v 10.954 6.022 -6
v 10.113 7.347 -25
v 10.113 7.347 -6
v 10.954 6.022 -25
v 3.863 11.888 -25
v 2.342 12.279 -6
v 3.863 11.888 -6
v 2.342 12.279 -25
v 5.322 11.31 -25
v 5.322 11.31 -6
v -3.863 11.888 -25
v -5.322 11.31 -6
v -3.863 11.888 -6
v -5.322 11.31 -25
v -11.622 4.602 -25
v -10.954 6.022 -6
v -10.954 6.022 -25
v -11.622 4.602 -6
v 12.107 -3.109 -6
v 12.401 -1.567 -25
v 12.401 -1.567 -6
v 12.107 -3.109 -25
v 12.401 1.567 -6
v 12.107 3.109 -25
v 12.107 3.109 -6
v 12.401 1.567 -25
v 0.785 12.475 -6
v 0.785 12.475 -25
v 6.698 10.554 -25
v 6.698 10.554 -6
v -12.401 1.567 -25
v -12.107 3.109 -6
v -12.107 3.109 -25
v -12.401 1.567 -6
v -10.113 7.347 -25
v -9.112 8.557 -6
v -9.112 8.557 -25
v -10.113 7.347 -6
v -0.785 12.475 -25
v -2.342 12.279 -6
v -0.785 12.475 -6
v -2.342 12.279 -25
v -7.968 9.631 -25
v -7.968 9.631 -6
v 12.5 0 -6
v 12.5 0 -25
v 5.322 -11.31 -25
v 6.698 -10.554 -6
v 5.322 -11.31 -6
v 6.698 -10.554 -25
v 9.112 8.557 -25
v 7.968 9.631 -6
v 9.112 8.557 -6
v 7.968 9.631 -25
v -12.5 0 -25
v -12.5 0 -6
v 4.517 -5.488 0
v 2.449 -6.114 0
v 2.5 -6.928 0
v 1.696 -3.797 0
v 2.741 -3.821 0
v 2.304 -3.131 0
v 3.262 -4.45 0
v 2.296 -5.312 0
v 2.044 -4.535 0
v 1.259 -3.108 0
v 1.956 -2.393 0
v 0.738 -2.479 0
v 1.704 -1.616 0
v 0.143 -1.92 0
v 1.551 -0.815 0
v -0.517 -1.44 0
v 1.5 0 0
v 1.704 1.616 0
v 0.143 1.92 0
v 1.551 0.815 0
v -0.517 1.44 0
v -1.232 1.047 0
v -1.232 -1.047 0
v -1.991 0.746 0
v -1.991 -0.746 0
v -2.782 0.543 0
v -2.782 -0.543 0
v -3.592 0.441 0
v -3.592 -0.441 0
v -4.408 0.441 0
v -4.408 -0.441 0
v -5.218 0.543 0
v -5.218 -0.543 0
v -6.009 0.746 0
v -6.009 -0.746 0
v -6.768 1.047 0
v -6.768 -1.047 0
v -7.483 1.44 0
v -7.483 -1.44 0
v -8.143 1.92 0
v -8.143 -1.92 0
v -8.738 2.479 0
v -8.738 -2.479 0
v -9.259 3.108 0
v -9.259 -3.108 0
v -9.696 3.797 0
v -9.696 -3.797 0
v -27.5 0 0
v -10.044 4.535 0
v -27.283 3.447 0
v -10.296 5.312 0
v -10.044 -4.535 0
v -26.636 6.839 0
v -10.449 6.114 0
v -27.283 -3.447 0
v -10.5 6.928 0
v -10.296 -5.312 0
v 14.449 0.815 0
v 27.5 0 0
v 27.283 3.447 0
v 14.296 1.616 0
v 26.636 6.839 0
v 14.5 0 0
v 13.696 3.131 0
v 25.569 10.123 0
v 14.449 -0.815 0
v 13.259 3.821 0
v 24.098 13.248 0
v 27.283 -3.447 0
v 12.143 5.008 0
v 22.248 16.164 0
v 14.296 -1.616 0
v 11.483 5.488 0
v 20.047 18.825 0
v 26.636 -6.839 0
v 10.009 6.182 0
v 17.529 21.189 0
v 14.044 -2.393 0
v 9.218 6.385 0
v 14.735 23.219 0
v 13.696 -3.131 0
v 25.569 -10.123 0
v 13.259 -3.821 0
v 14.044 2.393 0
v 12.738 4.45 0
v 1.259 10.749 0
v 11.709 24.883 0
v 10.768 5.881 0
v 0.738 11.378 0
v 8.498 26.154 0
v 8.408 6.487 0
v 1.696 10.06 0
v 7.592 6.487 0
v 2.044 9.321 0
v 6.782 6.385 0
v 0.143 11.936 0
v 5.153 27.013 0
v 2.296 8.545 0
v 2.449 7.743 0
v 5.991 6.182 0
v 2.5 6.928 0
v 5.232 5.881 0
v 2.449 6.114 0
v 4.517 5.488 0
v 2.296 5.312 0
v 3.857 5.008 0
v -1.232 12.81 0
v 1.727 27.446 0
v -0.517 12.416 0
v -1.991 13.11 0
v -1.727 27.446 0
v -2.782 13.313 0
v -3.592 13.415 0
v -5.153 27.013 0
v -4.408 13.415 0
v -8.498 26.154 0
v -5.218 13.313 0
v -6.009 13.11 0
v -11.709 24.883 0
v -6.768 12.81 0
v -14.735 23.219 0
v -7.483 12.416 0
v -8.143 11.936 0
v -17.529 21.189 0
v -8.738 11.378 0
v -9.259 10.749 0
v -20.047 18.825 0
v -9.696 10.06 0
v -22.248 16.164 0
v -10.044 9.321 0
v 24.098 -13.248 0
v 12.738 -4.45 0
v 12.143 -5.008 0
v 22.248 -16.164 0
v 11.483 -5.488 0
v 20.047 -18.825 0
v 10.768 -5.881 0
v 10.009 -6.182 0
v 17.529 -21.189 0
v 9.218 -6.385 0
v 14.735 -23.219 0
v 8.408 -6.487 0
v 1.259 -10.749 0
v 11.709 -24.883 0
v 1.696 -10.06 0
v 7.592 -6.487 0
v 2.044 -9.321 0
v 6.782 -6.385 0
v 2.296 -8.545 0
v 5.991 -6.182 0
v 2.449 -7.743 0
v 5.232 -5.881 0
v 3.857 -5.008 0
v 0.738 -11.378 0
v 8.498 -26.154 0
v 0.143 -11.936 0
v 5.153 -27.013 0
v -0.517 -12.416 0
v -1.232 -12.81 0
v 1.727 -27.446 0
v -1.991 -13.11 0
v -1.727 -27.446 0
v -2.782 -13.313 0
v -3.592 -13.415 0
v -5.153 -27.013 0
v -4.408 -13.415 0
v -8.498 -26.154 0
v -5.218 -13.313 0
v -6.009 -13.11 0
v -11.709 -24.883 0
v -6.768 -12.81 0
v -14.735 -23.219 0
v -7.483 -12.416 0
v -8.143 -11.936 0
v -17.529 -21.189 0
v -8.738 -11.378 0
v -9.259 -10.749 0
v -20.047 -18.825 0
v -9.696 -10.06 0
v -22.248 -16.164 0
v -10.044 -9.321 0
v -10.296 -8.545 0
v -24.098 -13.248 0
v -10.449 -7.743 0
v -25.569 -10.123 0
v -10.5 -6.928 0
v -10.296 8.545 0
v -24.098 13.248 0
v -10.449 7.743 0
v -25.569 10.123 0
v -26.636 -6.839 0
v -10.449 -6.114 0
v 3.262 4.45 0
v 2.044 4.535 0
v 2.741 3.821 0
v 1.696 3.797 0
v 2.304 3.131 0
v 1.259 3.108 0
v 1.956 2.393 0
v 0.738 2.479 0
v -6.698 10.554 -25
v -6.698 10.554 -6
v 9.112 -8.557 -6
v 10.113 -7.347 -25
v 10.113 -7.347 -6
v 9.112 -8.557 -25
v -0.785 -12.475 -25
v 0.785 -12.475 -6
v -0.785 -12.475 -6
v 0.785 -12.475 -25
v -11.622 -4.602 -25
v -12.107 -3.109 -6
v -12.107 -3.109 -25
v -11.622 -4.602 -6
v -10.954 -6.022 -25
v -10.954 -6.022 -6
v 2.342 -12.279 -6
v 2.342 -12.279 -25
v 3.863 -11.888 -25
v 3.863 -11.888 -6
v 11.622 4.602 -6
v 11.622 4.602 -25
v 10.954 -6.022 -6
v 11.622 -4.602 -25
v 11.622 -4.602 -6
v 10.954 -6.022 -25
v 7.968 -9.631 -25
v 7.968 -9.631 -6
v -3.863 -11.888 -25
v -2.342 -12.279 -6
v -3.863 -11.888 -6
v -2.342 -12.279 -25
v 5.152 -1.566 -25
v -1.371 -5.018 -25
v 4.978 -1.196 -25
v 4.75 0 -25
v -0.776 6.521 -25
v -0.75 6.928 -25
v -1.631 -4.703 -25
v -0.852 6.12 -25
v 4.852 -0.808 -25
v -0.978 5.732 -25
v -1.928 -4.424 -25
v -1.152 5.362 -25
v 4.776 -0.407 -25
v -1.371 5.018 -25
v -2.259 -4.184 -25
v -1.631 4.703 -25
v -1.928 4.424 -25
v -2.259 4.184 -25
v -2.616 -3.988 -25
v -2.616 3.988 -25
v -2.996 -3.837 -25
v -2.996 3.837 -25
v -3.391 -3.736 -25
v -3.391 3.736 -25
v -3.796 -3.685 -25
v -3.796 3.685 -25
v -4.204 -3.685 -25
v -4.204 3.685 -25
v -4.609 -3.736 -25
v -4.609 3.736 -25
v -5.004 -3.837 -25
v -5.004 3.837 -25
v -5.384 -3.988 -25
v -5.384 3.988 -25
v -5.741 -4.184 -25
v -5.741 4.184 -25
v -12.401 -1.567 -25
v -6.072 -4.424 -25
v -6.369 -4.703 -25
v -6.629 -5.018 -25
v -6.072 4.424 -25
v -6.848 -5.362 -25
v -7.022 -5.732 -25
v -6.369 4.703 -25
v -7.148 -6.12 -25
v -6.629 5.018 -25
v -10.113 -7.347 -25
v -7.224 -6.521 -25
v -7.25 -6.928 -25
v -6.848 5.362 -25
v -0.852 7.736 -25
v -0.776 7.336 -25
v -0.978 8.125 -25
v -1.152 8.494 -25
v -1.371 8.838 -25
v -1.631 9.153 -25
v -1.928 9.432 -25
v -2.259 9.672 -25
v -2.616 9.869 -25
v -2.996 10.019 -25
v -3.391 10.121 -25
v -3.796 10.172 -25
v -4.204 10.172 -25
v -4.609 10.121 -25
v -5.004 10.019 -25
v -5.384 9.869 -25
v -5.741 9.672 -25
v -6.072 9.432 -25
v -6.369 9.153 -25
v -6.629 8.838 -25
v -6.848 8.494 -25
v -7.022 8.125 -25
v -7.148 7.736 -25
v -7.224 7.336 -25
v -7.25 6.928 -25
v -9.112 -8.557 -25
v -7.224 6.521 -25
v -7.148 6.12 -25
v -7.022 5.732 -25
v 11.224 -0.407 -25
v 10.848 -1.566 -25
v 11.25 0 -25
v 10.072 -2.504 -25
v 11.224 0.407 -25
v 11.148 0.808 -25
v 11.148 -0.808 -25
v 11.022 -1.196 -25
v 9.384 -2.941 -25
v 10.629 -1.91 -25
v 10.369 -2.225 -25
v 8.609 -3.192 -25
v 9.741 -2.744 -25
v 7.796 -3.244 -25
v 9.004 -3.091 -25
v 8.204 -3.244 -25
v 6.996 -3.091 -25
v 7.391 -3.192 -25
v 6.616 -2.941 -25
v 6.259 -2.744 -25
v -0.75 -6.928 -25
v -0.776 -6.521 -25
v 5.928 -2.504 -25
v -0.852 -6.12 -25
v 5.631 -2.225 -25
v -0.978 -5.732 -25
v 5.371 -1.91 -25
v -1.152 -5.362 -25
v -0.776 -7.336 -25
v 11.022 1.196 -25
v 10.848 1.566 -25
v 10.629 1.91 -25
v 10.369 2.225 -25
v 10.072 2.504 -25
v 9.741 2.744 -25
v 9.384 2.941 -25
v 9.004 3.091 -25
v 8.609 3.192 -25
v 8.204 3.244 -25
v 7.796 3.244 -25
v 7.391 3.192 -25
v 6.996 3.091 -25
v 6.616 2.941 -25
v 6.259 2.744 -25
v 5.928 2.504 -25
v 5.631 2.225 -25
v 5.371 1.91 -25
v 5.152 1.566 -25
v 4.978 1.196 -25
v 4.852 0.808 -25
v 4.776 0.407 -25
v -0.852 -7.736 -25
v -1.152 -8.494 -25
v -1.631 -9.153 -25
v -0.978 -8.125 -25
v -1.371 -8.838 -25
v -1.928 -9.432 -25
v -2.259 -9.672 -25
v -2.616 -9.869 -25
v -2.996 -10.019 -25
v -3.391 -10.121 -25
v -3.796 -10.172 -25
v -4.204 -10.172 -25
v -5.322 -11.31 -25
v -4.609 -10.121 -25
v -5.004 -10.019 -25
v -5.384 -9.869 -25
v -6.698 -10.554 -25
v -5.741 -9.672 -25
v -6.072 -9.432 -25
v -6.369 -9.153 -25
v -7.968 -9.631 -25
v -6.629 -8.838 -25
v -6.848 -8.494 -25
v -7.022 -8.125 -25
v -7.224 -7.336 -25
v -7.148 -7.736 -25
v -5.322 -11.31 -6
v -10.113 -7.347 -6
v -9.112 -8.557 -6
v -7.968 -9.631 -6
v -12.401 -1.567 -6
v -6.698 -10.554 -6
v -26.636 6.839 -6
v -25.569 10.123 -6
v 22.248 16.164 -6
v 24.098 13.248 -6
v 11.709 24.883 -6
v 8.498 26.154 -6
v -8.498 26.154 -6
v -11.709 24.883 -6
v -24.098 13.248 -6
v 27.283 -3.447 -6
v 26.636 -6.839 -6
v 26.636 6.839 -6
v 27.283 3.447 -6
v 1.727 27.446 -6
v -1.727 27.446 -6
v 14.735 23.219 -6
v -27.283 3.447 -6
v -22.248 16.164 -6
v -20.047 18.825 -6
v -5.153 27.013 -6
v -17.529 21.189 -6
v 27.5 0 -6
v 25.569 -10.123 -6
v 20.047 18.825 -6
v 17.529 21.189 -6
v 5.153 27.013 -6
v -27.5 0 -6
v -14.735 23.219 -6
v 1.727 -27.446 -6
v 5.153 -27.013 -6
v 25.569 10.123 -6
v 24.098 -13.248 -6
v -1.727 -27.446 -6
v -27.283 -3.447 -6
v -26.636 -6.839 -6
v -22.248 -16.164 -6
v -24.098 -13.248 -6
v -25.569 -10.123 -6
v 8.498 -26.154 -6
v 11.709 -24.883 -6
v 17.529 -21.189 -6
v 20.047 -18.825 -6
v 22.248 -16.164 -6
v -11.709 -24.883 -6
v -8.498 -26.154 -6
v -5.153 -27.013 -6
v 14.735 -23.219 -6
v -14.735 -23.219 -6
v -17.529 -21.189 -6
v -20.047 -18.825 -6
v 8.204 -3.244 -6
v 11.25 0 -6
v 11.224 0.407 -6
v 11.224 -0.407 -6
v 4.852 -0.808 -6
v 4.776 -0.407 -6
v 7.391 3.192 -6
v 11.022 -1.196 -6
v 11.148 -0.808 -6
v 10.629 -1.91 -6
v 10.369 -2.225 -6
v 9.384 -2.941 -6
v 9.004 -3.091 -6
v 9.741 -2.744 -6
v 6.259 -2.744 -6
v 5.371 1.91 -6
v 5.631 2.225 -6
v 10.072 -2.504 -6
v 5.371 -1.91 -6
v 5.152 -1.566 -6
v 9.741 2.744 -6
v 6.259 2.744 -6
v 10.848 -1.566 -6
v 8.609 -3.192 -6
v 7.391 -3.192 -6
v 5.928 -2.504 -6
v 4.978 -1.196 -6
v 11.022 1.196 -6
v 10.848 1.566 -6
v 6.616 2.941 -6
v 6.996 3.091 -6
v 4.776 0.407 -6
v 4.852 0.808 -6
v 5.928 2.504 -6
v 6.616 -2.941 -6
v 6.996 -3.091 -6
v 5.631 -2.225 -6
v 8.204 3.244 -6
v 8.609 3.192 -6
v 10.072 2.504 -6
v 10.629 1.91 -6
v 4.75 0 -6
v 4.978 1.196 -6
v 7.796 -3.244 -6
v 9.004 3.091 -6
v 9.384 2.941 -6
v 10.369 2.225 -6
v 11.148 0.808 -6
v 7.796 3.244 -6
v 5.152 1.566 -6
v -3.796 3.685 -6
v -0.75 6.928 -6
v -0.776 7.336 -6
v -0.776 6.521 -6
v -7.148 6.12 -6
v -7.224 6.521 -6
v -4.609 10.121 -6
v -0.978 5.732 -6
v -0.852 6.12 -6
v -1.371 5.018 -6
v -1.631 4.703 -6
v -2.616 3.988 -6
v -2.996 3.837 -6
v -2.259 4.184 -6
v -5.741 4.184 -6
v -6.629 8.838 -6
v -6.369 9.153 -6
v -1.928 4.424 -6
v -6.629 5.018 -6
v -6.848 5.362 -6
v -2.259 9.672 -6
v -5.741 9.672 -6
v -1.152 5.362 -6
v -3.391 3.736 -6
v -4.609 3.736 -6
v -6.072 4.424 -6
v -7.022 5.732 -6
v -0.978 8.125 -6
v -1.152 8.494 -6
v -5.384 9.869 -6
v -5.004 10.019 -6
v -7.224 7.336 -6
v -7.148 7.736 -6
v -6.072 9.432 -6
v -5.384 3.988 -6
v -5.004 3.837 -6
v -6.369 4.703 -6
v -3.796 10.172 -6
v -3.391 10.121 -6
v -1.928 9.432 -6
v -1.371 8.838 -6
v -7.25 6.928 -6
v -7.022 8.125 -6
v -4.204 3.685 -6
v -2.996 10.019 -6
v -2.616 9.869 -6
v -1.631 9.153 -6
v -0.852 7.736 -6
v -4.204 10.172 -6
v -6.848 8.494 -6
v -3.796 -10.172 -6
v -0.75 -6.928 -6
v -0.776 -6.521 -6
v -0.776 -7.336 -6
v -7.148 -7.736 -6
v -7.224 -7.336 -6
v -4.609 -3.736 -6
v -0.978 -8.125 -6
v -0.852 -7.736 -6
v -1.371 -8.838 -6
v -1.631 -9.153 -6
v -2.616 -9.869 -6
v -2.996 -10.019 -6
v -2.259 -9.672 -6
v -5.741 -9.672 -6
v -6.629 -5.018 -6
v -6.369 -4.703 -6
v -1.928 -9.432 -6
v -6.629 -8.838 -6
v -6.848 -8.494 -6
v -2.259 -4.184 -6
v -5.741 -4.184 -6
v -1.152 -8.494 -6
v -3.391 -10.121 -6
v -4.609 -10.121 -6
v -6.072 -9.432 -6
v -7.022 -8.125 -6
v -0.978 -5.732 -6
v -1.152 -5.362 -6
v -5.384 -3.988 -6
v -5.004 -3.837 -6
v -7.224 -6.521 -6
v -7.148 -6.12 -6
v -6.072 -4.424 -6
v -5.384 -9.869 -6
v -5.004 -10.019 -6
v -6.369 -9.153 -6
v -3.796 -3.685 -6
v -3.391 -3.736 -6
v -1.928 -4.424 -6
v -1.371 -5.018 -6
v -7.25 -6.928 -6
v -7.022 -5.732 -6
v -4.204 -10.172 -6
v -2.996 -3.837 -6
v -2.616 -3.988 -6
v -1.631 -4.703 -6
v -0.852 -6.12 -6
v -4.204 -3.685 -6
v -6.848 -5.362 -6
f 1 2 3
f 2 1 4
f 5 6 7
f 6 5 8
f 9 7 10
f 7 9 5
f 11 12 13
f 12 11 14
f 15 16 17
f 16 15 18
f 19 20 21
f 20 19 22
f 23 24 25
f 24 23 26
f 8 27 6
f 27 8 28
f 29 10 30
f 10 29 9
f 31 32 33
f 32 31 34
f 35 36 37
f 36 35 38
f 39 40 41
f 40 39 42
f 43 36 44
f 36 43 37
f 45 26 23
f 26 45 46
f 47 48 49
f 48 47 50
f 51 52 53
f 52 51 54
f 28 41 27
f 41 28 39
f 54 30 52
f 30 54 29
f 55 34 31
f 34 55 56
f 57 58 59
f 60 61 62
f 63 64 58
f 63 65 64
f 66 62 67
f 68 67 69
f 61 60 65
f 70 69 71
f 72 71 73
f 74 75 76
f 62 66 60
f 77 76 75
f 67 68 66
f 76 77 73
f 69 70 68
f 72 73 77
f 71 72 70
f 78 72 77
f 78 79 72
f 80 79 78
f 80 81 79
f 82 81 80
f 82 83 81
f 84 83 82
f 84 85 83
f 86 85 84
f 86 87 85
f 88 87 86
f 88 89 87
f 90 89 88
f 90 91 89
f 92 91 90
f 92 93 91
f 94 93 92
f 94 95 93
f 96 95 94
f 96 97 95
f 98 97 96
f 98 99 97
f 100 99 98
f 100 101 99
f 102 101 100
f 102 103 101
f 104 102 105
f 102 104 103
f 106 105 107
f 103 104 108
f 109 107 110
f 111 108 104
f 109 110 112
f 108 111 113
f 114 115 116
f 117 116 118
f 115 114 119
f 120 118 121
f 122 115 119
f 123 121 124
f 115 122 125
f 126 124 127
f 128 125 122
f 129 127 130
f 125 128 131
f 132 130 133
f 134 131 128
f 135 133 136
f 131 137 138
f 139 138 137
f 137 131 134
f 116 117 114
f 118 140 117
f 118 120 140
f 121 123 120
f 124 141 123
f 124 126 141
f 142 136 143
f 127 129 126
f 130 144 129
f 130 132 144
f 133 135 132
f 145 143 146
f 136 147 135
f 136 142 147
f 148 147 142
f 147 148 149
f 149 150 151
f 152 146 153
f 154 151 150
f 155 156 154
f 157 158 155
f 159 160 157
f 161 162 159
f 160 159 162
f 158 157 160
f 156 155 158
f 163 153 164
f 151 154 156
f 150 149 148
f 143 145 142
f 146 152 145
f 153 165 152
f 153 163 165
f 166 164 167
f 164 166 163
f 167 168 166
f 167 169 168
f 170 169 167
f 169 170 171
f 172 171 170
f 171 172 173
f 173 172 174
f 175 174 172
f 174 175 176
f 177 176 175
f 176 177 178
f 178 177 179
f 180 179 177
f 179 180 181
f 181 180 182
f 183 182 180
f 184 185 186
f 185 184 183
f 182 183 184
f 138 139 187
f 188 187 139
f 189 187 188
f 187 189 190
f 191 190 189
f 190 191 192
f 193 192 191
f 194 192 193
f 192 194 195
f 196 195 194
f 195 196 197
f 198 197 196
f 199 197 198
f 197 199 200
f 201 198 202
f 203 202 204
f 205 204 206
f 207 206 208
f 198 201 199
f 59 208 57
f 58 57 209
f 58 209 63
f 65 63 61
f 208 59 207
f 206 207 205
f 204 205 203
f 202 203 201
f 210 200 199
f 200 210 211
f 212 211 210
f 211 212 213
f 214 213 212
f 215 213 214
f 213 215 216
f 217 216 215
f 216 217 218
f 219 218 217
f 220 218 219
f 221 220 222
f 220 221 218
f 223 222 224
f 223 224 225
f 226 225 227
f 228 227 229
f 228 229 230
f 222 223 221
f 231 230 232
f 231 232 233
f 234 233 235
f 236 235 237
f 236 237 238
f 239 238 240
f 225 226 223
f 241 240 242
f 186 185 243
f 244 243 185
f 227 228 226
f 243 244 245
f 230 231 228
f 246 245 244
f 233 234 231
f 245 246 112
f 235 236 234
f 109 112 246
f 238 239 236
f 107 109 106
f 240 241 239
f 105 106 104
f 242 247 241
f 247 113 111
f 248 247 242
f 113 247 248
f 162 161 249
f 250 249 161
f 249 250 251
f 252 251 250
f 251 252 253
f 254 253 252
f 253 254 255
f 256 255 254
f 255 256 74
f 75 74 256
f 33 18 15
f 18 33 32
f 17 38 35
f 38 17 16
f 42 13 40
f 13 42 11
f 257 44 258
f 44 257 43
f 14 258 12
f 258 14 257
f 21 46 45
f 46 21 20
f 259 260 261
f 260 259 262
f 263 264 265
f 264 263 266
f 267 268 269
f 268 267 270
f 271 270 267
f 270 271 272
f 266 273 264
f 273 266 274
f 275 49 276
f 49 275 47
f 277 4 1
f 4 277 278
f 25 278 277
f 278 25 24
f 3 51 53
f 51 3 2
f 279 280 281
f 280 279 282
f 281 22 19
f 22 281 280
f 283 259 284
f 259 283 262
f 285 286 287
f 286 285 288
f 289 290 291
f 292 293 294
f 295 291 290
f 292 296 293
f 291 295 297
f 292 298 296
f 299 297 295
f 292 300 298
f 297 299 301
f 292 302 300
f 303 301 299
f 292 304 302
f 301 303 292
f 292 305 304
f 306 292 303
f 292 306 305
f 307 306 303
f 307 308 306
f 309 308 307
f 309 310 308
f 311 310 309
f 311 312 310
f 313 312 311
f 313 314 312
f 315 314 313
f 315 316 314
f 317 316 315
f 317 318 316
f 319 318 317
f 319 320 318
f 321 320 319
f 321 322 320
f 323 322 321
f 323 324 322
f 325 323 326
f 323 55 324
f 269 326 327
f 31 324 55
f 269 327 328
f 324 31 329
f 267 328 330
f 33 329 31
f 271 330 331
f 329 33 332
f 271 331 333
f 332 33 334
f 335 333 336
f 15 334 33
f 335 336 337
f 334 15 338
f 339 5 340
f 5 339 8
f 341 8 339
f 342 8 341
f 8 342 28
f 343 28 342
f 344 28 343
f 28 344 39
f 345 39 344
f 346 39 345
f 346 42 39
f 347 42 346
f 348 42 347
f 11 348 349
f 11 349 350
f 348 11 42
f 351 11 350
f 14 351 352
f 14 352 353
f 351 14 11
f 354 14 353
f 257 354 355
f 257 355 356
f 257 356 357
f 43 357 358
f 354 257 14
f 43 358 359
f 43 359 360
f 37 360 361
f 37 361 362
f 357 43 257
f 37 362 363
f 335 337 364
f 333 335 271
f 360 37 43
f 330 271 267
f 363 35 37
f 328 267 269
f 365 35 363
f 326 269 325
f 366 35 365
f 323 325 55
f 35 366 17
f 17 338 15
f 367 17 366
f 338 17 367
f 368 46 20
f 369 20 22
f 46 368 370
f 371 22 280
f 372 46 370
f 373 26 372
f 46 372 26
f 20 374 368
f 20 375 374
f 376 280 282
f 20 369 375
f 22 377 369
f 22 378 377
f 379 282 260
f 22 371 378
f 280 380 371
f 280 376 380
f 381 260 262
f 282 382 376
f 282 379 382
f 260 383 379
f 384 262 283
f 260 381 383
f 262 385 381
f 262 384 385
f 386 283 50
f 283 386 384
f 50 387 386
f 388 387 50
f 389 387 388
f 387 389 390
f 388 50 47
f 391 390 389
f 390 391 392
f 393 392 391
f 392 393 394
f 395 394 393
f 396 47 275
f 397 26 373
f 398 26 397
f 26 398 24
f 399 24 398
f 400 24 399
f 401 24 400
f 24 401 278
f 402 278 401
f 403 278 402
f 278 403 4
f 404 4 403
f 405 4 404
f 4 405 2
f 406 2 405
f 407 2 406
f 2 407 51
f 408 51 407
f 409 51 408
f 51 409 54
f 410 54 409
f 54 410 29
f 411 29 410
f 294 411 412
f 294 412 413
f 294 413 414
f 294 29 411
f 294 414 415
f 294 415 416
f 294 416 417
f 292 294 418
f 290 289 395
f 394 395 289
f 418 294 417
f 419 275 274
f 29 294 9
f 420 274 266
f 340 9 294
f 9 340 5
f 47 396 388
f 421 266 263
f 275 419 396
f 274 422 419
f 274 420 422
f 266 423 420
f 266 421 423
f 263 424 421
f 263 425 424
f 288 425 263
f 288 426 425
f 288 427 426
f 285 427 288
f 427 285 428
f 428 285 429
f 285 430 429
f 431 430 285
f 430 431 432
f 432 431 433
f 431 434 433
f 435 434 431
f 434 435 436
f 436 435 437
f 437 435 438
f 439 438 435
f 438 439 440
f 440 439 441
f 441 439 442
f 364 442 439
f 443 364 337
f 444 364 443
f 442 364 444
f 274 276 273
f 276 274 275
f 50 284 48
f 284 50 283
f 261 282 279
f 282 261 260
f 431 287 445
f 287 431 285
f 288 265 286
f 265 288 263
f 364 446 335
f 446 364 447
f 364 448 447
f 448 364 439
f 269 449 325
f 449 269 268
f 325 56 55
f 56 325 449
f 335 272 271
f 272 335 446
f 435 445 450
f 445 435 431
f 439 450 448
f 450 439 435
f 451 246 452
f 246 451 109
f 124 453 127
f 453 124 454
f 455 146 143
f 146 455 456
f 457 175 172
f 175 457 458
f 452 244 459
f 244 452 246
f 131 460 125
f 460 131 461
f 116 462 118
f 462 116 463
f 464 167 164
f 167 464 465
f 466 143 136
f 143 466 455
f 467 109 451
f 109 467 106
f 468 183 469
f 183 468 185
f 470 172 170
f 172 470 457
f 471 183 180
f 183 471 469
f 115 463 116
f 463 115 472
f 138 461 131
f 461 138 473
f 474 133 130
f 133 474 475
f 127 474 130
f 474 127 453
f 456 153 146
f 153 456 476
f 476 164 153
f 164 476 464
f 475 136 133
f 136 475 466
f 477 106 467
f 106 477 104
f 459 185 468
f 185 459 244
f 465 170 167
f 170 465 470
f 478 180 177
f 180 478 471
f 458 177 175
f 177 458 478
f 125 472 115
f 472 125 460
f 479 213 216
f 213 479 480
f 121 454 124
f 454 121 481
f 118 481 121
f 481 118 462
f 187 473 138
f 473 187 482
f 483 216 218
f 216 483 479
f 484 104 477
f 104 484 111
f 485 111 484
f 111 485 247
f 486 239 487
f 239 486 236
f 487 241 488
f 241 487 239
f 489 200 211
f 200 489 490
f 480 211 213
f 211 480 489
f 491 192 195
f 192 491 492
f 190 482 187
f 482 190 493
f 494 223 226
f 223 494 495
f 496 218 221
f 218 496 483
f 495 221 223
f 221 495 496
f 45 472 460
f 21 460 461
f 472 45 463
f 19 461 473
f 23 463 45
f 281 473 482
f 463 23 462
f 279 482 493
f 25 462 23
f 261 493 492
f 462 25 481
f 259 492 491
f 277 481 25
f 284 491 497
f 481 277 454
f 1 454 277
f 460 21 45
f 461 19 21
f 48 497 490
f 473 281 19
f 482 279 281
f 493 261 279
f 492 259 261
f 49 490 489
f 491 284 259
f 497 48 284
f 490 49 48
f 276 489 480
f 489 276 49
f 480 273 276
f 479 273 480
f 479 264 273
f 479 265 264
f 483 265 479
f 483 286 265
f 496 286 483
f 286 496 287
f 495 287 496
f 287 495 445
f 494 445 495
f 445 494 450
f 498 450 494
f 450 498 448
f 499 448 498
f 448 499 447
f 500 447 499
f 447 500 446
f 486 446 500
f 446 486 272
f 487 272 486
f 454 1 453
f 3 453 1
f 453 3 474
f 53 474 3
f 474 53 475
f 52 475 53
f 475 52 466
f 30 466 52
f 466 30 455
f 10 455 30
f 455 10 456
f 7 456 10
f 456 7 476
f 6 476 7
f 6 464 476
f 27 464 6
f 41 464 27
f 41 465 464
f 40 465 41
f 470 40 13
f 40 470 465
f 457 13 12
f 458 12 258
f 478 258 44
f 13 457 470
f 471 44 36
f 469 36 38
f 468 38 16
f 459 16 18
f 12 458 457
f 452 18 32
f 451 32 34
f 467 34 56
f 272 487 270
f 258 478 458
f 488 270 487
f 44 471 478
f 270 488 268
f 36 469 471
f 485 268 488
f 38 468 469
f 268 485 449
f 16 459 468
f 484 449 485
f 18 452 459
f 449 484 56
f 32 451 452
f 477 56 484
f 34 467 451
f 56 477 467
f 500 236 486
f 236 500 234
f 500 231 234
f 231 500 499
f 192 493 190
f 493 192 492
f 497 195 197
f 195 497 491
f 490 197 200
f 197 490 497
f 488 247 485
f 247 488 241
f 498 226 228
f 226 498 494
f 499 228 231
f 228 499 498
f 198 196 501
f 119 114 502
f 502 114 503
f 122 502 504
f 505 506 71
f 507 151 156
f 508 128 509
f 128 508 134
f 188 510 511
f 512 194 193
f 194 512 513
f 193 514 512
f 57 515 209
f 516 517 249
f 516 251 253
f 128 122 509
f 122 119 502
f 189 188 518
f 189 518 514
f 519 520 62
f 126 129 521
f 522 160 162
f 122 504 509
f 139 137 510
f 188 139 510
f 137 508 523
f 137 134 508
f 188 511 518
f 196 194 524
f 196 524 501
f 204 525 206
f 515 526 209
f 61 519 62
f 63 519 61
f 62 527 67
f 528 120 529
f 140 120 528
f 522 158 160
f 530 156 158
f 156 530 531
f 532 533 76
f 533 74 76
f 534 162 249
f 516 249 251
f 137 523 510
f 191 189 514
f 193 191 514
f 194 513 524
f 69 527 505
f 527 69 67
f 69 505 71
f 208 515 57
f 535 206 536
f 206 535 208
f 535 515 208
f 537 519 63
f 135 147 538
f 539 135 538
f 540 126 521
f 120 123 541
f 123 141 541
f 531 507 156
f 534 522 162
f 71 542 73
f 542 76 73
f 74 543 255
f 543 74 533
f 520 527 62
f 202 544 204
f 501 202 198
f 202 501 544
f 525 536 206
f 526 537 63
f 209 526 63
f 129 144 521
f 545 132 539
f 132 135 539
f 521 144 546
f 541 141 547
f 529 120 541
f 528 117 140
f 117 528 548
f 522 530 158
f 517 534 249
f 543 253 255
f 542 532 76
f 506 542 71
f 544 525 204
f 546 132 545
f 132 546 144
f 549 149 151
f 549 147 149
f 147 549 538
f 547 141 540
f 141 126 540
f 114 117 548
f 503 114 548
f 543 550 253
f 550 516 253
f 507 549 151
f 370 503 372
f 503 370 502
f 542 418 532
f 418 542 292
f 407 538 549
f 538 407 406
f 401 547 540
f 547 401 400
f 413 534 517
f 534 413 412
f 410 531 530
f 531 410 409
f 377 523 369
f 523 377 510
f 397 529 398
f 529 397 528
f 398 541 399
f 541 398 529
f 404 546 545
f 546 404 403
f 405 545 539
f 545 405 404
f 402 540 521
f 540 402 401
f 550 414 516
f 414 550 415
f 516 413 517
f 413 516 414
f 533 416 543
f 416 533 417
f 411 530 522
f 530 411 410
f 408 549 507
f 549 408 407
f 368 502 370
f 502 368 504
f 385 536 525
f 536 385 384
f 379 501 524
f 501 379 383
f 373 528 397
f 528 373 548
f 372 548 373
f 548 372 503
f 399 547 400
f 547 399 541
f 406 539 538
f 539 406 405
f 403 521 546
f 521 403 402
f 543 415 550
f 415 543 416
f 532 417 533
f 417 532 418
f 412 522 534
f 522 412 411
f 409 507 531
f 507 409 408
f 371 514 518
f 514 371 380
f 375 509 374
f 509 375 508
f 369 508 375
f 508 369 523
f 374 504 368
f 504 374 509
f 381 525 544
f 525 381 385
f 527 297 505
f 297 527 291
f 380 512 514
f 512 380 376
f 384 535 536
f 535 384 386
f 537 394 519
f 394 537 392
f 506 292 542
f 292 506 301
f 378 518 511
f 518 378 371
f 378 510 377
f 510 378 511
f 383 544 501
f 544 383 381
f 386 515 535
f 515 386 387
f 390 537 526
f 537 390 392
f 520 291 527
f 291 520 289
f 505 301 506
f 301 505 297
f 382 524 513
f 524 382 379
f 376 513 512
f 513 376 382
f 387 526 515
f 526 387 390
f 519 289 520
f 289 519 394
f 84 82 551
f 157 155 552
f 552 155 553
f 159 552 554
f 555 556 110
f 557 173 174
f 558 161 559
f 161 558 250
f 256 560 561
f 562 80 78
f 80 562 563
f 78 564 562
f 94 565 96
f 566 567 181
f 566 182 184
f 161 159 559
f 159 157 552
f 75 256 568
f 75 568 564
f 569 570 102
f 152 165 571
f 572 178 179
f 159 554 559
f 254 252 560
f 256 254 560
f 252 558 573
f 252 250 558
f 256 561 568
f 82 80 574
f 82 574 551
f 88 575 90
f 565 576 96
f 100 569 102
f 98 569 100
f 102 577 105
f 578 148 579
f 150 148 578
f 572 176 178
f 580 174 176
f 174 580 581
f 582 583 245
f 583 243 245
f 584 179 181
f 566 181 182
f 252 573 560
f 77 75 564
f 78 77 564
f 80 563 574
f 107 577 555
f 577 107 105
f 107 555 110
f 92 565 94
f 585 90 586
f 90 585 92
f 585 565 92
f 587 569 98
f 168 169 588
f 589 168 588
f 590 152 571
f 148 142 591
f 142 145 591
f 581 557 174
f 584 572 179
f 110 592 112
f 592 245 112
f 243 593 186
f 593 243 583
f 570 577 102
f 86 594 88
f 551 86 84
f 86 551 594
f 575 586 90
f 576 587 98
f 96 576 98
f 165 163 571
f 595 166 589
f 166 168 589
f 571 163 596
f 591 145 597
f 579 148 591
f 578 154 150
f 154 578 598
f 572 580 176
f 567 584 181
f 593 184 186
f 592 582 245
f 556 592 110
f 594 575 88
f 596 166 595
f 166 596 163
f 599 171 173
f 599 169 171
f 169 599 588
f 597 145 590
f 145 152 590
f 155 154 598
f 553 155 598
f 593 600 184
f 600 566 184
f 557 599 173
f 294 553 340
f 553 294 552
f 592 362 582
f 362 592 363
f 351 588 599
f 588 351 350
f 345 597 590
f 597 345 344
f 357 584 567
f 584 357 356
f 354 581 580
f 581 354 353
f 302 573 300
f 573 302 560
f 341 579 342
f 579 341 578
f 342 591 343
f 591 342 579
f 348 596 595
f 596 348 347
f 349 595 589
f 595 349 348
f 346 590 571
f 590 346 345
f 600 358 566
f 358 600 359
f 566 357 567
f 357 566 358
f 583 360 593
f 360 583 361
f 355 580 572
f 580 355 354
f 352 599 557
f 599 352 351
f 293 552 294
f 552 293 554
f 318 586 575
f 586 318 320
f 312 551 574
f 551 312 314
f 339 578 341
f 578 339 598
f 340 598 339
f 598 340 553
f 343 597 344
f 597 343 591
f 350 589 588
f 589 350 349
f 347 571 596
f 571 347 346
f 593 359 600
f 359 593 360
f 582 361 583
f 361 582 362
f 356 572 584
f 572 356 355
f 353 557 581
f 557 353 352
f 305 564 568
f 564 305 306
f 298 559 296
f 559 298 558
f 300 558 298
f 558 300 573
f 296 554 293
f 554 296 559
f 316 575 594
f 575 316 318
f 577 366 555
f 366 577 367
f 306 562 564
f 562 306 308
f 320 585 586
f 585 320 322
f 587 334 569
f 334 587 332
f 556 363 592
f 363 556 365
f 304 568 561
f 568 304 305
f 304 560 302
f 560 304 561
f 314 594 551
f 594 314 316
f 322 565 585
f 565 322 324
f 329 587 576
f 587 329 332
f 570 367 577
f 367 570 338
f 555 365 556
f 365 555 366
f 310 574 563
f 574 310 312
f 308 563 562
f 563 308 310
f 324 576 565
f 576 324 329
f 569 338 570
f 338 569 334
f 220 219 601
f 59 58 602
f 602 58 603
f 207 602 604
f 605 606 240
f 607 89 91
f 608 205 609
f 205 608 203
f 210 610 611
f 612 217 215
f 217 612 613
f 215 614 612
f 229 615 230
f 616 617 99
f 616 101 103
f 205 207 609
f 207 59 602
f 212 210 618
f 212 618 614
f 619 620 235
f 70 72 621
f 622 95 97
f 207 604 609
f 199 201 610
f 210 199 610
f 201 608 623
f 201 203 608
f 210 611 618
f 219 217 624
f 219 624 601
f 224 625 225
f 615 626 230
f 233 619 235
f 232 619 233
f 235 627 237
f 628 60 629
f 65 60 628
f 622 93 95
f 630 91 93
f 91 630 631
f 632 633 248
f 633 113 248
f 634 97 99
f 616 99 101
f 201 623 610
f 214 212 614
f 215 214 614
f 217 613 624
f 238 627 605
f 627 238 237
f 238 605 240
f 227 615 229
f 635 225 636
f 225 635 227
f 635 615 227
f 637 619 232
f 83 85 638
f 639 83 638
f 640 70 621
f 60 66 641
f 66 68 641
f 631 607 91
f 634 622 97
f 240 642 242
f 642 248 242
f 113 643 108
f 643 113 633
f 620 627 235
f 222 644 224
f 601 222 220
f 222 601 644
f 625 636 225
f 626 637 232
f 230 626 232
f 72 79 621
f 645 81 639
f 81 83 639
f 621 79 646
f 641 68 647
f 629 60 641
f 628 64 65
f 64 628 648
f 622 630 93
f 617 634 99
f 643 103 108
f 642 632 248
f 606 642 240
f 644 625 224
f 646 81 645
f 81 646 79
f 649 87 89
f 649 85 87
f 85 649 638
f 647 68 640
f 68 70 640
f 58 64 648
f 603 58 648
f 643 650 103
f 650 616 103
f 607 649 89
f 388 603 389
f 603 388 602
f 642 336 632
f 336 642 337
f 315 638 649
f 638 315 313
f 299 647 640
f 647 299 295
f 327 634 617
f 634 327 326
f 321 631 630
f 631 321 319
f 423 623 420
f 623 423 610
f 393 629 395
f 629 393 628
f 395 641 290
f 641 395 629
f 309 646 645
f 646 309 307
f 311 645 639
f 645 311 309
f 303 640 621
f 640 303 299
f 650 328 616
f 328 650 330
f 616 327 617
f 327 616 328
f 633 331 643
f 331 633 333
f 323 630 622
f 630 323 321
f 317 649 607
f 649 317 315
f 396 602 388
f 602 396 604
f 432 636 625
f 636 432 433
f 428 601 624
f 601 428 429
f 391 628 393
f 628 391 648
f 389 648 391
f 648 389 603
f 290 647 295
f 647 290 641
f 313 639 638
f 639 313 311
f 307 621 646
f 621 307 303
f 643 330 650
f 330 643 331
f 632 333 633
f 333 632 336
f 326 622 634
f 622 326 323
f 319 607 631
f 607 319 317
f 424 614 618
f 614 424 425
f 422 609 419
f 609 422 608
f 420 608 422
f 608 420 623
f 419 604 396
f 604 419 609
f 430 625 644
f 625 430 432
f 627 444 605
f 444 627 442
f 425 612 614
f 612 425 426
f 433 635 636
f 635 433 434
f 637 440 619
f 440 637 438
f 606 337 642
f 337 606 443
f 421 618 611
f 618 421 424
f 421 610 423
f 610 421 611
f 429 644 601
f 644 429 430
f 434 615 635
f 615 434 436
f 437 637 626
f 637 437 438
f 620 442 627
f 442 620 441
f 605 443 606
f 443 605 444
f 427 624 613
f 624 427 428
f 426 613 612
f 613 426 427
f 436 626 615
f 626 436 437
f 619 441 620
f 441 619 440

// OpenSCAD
$fn = 50;


difference() {
	union() {
		translate(v = [0, 0, -25.0000000000]) {
			cylinder(h = 25, r = 12.5000000000);
		}
		translate(v = [0, 0, -6.0000000000]) {
			cylinder(h = 6, r = 27.5000000000);
		}
	}
	union() {
		translate(v = [8.0000000000, 0.0000000000, 0]) {
			rotate(a = [0, 0, 0]) {
				difference() {
					union() {
						#translate(v = [0, 0, -25.0000000000]) {
							cylinder(h = 25, r = 2.2500000000);
						}
						#translate(v = [0, 0, -6]) {
							cylinder(h = 6, r = 12.5000000000, r1 = 3.2500000000, r2 = 6.5000000000);
						}
						#translate(v = [0, 0, -25.0000000000]) {
							cylinder(h = 25, r = 3.2500000000);
						}
						#translate(v = [0, 0, -25.0000000000]) {
							cylinder(h = 25, r = 2.2500000000);
						}
					}
					union();
				}
			}
		}
		translate(v = [-4.0000000000, 6.9282032303, 0]) {
			rotate(a = [0, 0, 0]) {
				difference() {
					union() {
						#translate(v = [0, 0, -25.0000000000]) {
							cylinder(h = 25, r = 2.2500000000);
						}
						#translate(v = [0, 0, -6]) {
							cylinder(h = 6, r = 12.5000000000, r1 = 3.2500000000, r2 = 6.5000000000);
						}
						#translate(v = [0, 0, -25.0000000000]) {
							cylinder(h = 25, r = 3.2500000000);
						}
						#translate(v = [0, 0, -25.0000000000]) {
							cylinder(h = 25, r = 2.2500000000);
						}
					}
					union();
				}
			}
		}
		translate(v = [-4.0000000000, -6.9282032303, 0]) {
			rotate(a = [0, 0, 0]) {
				difference() {
					union() {
						#translate(v = [0, 0, -25.0000000000]) {
							cylinder(h = 25, r = 2.2500000000);
						}
						#translate(v = [0, 0, -6]) {
							cylinder(h = 6, r = 12.5000000000, r1 = 3.2500000000, r2 = 6.5000000000);
						}
						#translate(v = [0, 0, -25.0000000000]) {
							cylinder(h = 25, r = 3.2500000000);
						}
						#translate(v = [0, 0, -25.0000000000]) {
							cylinder(h = 25, r = 2.2500000000);
						}
					}
					union();
				}
			}
		}
	}
}
